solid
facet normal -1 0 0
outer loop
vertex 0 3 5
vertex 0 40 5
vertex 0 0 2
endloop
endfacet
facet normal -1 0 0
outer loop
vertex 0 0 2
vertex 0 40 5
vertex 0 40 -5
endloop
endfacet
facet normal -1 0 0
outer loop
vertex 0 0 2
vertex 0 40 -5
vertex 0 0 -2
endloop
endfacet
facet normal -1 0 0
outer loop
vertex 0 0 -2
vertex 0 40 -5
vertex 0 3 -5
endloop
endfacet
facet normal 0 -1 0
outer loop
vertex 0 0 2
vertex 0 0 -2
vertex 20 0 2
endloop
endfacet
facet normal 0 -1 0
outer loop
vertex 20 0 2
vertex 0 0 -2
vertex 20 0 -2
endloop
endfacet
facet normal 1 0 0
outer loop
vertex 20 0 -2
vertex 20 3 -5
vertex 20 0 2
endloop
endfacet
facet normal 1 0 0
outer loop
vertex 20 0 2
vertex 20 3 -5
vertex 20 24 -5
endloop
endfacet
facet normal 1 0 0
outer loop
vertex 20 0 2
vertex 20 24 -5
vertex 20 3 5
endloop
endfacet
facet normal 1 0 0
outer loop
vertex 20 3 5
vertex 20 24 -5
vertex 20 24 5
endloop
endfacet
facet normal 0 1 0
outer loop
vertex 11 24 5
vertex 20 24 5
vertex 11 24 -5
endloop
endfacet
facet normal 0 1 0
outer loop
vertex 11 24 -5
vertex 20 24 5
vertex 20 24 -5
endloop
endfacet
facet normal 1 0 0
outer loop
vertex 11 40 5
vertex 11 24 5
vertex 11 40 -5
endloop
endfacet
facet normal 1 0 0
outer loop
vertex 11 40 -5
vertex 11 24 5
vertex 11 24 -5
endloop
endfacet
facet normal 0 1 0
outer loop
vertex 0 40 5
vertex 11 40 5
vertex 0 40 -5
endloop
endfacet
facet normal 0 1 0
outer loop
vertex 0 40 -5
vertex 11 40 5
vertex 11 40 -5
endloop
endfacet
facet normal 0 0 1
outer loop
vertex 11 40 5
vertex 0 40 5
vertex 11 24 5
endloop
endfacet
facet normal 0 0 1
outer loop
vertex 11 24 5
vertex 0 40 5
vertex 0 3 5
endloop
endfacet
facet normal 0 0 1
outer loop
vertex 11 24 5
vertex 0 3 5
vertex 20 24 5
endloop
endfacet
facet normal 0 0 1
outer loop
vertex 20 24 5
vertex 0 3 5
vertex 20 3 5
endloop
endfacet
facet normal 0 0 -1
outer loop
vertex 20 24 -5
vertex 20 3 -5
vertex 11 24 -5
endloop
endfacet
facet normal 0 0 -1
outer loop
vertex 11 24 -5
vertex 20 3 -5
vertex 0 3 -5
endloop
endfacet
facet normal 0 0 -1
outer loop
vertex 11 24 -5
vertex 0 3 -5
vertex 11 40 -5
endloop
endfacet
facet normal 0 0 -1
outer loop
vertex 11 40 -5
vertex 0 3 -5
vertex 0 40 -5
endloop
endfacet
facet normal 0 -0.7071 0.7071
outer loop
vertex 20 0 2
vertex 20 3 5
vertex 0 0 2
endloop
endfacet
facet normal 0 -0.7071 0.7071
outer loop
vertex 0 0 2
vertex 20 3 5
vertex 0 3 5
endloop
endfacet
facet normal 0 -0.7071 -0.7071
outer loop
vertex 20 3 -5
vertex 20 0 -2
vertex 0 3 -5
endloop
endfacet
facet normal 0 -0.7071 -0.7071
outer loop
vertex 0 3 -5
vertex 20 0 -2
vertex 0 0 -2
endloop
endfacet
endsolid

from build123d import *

# Parameters (mm, degrees)
BOSS_EXTRUDE1_DEPTH = 5
CHAMFER1_SIZE       = 3


with BuildPart() as part:
    # Sketch1 → Boss-Extrude1 (new, symmetric)
    with BuildSketch(Plane.XY):
        Polygon((20, 24), (11, 24), (11, 40), (0, 40), (0, 0), (20, 0), align=None)
    extrude(amount=BOSS_EXTRUDE1_DEPTH, both=True)

    # Chamfer1
    chamfer1_edges = [part.edges().sort_by_distance(p)[0] for p in [
        (10, 0, -5),
        (10, 0, 5),
    ]]
    chamfer(chamfer1_edges, length=CHAMFER1_SIZE)


solid = part.part
